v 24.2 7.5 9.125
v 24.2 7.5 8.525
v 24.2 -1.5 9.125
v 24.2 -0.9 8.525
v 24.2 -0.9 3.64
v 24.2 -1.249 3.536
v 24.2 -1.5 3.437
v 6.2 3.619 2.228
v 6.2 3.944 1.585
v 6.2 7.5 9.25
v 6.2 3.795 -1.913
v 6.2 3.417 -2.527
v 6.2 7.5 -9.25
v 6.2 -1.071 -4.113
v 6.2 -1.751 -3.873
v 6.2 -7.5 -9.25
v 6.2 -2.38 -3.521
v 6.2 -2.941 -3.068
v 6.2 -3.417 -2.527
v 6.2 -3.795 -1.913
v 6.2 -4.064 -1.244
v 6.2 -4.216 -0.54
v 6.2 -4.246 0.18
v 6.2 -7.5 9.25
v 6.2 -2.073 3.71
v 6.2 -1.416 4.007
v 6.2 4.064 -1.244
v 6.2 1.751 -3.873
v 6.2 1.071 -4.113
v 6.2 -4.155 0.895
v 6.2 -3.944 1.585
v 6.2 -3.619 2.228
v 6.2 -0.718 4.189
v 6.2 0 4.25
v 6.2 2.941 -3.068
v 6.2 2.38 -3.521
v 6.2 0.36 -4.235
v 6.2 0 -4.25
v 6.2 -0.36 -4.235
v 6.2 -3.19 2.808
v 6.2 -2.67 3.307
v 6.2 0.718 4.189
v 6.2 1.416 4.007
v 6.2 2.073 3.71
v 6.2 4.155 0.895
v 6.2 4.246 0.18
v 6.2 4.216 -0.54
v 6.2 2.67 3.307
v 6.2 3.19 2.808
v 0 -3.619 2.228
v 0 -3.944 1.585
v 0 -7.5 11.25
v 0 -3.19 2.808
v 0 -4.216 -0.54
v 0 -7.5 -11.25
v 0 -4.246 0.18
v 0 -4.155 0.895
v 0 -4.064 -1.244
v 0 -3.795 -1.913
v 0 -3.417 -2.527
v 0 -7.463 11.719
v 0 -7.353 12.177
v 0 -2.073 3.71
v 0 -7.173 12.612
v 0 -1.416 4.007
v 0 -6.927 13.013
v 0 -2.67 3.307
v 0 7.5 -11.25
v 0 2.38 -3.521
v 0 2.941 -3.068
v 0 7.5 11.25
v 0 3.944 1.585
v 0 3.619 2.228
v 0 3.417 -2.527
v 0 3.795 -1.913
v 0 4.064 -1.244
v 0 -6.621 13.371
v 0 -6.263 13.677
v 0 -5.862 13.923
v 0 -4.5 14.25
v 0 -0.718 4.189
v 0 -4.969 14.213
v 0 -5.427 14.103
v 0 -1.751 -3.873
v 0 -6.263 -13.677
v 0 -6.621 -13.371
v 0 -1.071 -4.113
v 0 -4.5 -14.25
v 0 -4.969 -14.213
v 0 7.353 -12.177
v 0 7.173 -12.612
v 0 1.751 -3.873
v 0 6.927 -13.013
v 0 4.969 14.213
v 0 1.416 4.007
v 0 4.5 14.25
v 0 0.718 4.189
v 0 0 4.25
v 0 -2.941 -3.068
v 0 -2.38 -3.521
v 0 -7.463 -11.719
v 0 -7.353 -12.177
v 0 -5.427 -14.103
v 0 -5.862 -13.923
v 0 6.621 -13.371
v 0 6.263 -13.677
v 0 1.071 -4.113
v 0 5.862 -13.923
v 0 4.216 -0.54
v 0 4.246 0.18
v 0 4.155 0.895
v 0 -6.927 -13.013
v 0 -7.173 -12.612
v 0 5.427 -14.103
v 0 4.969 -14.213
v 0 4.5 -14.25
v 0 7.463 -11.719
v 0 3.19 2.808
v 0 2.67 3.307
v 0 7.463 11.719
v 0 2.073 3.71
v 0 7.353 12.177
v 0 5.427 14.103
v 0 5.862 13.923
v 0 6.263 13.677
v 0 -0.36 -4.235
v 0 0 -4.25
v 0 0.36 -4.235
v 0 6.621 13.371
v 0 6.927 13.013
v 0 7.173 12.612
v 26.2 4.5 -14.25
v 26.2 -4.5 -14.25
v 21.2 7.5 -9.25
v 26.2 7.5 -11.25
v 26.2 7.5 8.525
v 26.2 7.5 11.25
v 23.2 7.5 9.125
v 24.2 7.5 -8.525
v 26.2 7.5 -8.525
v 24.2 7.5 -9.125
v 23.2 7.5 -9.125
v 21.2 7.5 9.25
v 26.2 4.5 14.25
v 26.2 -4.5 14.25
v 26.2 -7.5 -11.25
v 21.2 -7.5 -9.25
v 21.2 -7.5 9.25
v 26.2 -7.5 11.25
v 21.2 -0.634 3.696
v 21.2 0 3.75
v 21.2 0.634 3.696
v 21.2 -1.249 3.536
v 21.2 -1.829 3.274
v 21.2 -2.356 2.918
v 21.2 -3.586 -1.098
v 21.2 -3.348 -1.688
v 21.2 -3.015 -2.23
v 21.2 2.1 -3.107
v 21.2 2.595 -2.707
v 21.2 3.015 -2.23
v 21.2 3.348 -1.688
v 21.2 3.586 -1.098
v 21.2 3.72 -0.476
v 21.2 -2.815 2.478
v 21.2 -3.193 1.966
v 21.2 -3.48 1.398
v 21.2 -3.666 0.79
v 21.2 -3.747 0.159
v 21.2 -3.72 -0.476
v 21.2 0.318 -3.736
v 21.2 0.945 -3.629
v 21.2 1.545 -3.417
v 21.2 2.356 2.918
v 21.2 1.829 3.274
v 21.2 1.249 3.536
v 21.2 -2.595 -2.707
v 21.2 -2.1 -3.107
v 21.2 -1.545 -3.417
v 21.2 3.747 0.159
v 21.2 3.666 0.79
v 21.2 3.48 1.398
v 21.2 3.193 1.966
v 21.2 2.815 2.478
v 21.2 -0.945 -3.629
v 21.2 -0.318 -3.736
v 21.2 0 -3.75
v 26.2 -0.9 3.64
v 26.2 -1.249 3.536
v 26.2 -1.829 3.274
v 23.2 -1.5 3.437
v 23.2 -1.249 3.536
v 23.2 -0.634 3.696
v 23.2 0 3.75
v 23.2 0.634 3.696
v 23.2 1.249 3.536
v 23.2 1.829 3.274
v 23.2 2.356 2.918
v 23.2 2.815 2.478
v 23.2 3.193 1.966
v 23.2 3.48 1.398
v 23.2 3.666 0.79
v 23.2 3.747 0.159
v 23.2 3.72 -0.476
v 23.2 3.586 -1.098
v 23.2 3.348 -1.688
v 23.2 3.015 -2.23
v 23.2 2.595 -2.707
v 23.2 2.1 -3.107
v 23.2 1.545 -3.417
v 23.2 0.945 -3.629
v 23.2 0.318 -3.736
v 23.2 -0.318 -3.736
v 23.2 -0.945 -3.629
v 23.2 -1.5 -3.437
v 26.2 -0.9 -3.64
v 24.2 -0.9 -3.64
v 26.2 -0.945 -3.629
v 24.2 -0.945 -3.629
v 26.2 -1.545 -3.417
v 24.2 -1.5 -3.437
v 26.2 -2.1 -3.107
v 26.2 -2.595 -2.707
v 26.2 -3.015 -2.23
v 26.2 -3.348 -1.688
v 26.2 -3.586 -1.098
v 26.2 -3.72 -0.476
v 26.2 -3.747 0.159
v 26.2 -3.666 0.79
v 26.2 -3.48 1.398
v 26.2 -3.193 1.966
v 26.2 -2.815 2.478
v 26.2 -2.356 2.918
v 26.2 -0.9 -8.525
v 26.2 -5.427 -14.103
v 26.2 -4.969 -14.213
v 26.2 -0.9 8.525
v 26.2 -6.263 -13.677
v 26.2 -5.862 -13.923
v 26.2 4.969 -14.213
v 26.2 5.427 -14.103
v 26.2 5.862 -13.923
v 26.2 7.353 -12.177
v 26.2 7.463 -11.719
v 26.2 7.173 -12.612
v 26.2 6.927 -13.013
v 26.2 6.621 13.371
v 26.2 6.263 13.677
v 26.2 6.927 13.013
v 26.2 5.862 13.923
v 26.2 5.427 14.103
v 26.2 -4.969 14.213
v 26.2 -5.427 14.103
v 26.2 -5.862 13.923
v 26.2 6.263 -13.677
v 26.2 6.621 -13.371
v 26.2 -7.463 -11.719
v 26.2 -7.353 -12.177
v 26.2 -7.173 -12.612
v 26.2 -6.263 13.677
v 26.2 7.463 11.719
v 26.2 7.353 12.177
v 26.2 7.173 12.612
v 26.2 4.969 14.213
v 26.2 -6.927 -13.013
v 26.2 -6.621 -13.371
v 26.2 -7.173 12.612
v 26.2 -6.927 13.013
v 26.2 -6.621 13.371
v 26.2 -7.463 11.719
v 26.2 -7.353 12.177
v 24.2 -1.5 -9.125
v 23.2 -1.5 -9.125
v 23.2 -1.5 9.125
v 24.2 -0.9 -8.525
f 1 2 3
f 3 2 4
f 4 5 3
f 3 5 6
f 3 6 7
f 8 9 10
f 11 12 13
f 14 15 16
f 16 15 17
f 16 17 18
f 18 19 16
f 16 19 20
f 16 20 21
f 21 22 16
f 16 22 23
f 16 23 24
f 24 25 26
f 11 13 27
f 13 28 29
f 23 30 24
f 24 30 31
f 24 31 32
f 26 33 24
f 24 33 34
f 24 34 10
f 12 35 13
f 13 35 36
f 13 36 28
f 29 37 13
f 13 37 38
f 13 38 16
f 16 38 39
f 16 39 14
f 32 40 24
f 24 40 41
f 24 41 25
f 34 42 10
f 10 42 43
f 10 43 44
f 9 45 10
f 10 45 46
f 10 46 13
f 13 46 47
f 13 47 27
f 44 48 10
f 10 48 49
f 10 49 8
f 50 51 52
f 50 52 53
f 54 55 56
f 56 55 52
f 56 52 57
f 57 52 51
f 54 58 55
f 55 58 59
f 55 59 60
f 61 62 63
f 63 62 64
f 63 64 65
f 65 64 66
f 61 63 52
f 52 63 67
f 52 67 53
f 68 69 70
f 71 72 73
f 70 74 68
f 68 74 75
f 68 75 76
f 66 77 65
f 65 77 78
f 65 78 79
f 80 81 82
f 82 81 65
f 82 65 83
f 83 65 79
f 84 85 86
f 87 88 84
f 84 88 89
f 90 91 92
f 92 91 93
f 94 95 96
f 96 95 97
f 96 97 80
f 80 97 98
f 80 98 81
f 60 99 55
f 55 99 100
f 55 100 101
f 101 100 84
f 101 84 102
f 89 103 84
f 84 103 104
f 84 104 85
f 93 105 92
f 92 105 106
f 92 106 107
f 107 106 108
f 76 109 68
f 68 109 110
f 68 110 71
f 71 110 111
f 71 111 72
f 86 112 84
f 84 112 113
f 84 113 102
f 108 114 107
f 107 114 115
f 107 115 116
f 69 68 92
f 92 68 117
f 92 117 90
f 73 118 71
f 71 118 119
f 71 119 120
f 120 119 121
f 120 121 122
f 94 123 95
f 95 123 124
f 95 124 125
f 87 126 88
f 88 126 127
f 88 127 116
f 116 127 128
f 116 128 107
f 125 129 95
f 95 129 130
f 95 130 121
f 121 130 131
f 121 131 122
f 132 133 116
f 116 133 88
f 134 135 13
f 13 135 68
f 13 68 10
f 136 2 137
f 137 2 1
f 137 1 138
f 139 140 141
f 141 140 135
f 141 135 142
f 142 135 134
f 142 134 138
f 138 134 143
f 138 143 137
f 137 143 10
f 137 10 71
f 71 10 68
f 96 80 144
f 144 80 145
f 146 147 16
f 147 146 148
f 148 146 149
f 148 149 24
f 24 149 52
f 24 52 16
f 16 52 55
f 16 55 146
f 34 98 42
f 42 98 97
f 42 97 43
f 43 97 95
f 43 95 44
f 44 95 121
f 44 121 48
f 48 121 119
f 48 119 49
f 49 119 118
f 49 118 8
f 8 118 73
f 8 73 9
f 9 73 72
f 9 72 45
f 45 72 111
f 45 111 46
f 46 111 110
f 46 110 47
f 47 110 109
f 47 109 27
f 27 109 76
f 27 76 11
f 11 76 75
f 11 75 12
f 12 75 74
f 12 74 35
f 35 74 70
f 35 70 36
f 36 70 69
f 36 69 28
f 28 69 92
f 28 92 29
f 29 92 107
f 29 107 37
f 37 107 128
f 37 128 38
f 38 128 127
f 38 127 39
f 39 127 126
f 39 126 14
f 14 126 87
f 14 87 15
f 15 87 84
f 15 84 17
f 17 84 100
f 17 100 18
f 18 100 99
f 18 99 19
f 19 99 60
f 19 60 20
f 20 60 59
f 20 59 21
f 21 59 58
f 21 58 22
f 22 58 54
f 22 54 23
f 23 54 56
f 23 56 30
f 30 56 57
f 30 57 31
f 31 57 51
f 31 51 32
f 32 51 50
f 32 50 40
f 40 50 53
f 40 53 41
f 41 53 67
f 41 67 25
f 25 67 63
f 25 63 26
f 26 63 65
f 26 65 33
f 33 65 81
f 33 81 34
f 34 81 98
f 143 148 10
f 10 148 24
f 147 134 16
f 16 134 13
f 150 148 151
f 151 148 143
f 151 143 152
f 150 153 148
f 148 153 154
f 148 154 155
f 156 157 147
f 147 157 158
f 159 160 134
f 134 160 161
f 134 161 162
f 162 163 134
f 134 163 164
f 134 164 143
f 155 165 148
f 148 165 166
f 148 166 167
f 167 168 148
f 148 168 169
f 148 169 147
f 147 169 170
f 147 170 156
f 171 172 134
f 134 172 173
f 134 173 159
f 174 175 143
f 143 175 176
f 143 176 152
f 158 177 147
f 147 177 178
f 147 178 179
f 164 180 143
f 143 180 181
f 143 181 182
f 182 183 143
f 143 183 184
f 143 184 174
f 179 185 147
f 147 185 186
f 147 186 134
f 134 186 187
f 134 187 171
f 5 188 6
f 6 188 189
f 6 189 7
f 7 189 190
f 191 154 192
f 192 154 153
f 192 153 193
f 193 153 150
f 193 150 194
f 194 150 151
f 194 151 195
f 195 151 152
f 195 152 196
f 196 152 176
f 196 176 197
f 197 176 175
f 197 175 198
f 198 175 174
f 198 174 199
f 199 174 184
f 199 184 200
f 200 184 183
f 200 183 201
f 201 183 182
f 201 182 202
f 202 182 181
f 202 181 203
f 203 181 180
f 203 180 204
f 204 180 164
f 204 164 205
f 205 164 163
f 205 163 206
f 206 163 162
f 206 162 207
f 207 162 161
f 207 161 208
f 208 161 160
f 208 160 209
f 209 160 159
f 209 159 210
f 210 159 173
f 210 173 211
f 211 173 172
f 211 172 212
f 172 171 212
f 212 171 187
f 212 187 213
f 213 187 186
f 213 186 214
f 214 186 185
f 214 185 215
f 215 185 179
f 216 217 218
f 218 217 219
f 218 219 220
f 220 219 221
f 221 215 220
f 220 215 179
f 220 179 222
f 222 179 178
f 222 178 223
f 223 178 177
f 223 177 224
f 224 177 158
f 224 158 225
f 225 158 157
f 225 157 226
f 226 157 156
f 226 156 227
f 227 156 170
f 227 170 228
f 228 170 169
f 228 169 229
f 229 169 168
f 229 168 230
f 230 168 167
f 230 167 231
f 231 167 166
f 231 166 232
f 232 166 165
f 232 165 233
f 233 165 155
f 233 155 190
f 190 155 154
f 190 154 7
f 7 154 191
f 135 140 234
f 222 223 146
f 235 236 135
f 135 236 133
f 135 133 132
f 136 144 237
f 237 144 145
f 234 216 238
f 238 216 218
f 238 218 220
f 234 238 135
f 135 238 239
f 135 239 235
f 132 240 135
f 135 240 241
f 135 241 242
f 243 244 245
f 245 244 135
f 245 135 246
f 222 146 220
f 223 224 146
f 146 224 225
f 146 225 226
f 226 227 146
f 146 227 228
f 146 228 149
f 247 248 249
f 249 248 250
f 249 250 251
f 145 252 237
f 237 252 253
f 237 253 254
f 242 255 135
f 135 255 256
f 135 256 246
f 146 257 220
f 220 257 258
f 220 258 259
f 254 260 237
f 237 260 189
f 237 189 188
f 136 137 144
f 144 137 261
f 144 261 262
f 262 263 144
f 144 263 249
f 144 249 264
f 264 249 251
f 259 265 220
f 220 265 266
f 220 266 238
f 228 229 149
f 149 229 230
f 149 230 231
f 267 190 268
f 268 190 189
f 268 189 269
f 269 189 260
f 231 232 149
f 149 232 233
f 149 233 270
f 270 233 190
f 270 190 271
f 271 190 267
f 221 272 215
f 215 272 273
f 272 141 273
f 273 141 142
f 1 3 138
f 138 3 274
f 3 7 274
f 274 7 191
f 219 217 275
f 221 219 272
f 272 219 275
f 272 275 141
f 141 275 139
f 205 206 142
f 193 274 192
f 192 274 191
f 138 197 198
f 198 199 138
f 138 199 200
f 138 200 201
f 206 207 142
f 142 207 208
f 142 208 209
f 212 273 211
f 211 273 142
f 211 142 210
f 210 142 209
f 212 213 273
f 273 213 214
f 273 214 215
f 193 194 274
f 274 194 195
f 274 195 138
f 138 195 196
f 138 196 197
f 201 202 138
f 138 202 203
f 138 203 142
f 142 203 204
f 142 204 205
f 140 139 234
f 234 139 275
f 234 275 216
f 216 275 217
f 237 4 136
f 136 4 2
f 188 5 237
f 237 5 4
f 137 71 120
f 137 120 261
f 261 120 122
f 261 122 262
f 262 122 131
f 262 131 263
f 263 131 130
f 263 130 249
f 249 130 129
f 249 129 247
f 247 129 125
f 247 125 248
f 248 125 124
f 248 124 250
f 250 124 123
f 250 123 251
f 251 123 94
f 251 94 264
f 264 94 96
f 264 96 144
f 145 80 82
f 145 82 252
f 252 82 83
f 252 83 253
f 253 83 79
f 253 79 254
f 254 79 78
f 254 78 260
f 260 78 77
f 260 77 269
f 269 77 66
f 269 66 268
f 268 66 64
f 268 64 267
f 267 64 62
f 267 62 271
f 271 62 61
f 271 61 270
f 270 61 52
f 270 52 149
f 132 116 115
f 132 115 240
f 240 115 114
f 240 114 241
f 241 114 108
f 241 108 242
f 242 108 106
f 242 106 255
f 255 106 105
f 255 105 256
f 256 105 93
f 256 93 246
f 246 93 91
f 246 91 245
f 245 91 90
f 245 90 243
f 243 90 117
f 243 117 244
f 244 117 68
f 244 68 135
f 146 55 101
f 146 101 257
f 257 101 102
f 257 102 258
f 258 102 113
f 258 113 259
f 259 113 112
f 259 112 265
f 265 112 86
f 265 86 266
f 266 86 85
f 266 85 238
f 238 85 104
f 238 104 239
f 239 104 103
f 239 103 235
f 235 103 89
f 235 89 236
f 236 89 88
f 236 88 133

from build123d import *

# Parameters (mm, degrees)
SKETCH1_W           = 28.5
SKETCH1_H           = 15
SKETCH1_R           = 4.25
BOSS_EXTRUDE1_DEPTH = 6.2
SKETCH2_W           = 5
SKETCH2_H           = 15
BOSS_EXTRUDE2_DEPTH = 15
SKETCH3_W           = 5
SKETCH3_H           = 15
BOSS_EXTRUDE3_DEPTH = 5
CUT_EXTRUDE2_START  = 2
CUT_EXTRUDE2_DEPTH  = 1
CUT_EXTRUDE3_START  = 3
CUT_EXTRUDE3_DEPTH  = 2
FILLET1_R           = 3


with BuildPart() as part:
    # Sketch1 → Boss-Extrude1 (new body)
    with BuildSketch(Plane(origin=(0, 0, 0), x_dir=(0, 0, -1), z_dir=(1, 0, 0))):
        Rectangle(SKETCH1_W, SKETCH1_H)
        with Locations(Location((0, 0, 0), (0, 0, 180))):
            Circle(SKETCH1_R, mode=Mode.SUBTRACT)
    extrude(amount=BOSS_EXTRUDE1_DEPTH)

    # Sketch2 → Boss-Extrude2 (add)
    with BuildSketch(Plane(origin=(6.2, 0, 0), x_dir=(0, 0, -1), z_dir=(1, 0, 0))):
        with Locations((-11.75, 0)):
            Rectangle(SKETCH2_W, SKETCH2_H)
        with Locations((11.75, 0)):
            Rectangle(SKETCH2_W, SKETCH2_H)
    extrude(amount=BOSS_EXTRUDE2_DEPTH)

    # Sketch3 → Boss-Extrude3 (add)
    with BuildSketch(Plane(origin=(21.2, 0, 0), x_dir=(0, 0, -1), z_dir=(1, 0, 0))):
        with Locations((-11.75, 0)):
            Rectangle(SKETCH3_W, SKETCH3_H)
        with BuildLine():
            Line((8.525, -0.9), (8.525, 7.5))
            Line((8.525, 7.5), (-8.525, 7.5))
            Line((-8.525, 7.5), (-8.525, -0.9))
            Line((-8.525, -0.9), (-3.64039833, -0.9))
            ThreePointArc((-3.64039833, -0.9), (-0.453324532, 3.72249874), (3.75, 0))
            ThreePointArc((3.75, 0), (3.72249874, -0.453324532), (3.64039833, -0.9))
            Line((3.64039833, -0.9), (8.525, -0.9))
        make_face()
        with BuildLine():
            Line((-9.25, -7.5), (14.25, -7.5))
            Line((14.25, -7.5), (14.25, 7.5))
            Line((14.25, 7.5), (9.125, 7.5))
            Line((9.125, 7.5), (9.125, -1.5))
            Line((9.125, -1.5), (3.436931771, -1.5))
            ThreePointArc((3.436931771, -1.5), (0, -3.75), (-3.436931771, -1.5))
            Line((-3.436931771, -1.5), (-9.125, -1.5))
            Line((-9.125, -1.5), (-9.125, 7.5))
            Line((-9.125, 7.5), (-9.25, 7.5))
            Line((-9.25, 7.5), (-9.25, -7.5))
        make_face()
        with BuildLine():
            Line((-8.525, 7.5), (-9.125, 7.5))
            Line((-9.125, 7.5), (-9.125, -1.5))
            Line((-9.125, -1.5), (-3.436931771, -1.5))
            ThreePointArc((-3.436931771, -1.5), (-3.551358943, -1.204304638), (-3.64039833, -0.9))
            Line((-3.64039833, -0.9), (-8.525, -0.9))
            Line((-8.525, -0.9), (-8.525, 7.5))
        make_face()
        with BuildLine():
            Line((9.125, -1.5), (9.125, 7.5))
            Line((9.125, 7.5), (8.525, 7.5))
            Line((8.525, 7.5), (8.525, -0.9))
            Line((8.525, -0.9), (3.64039833, -0.9))
            ThreePointArc((3.64039833, -0.9), (3.551358943, -1.204304638), (3.436931771, -1.5))
            Line((3.436931771, -1.5), (9.125, -1.5))
        make_face()
    extrude(amount=BOSS_EXTRUDE3_DEPTH)

    # Sketch3<6> → Cut-Extrude2 (cut)
    with BuildSketch(Plane(origin=(21.2, 0, 0), x_dir=(0, 0, -1), z_dir=(1, 0, 0)).offset(CUT_EXTRUDE2_START)):
        with BuildLine():
            Line((8.525, -0.9), (8.525, 7.5))
            Line((8.525, 7.5), (-8.525, 7.5))
            Line((-8.525, 7.5), (-8.525, -0.9))
            Line((-8.525, -0.9), (-3.64039833, -0.9))
            ThreePointArc((-3.64039833, -0.9), (-0.453324532, 3.72249874), (3.75, 0))
            ThreePointArc((3.75, 0), (3.72249874, -0.453324532), (3.64039833, -0.9))
            Line((3.64039833, -0.9), (8.525, -0.9))
        make_face()
        with BuildLine():
            Line((-8.525, 7.5), (-9.125, 7.5))
            Line((-9.125, 7.5), (-9.125, -1.5))
            Line((-9.125, -1.5), (-3.436931771, -1.5))
            ThreePointArc((-3.436931771, -1.5), (-3.551358943, -1.204304638), (-3.64039833, -0.9))
            Line((-3.64039833, -0.9), (-8.525, -0.9))
            Line((-8.525, -0.9), (-8.525, 7.5))
        make_face()
        with BuildLine():
            Line((9.125, -1.5), (9.125, 7.5))
            Line((9.125, 7.5), (8.525, 7.5))
            Line((8.525, 7.5), (8.525, -0.9))
            Line((8.525, -0.9), (3.64039833, -0.9))
            ThreePointArc((3.64039833, -0.9), (3.551358943, -1.204304638), (3.436931771, -1.5))
            Line((3.436931771, -1.5), (9.125, -1.5))
        make_face()
    extrude(amount=CUT_EXTRUDE2_DEPTH, mode=Mode.SUBTRACT)

    # Sketch3<7> → Cut-Extrude3 (cut)
    with BuildSketch(Plane(origin=(21.2, 0, 0), x_dir=(0, 0, -1), z_dir=(1, 0, 0)).offset(CUT_EXTRUDE3_START)):
        with BuildLine():
            Line((8.525, -0.9), (8.525, 7.5))
            Line((8.525, 7.5), (-8.525, 7.5))
            Line((-8.525, 7.5), (-8.525, -0.9))
            Line((-8.525, -0.9), (-3.64039833, -0.9))
            ThreePointArc((-3.64039833, -0.9), (-0.453324532, 3.72249874), (3.75, 0))
            ThreePointArc((3.75, 0), (3.72249874, -0.453324532), (3.64039833, -0.9))
            Line((3.64039833, -0.9), (8.525, -0.9))
        make_face()
    extrude(amount=CUT_EXTRUDE3_DEPTH, mode=Mode.SUBTRACT)

    # Fillet1
    fillet1_edges = [part.edges().sort_by_distance(p)[0] for p in [
        (13.1, -7.5, -14.25),
        (13.1, -7.5, 14.25),
        (13.1, 7.5, 14.25),
        (13.1, 7.5, -14.25),
    ]]
    fillet(fillet1_edges, radius=FILLET1_R)


solid = part.part
